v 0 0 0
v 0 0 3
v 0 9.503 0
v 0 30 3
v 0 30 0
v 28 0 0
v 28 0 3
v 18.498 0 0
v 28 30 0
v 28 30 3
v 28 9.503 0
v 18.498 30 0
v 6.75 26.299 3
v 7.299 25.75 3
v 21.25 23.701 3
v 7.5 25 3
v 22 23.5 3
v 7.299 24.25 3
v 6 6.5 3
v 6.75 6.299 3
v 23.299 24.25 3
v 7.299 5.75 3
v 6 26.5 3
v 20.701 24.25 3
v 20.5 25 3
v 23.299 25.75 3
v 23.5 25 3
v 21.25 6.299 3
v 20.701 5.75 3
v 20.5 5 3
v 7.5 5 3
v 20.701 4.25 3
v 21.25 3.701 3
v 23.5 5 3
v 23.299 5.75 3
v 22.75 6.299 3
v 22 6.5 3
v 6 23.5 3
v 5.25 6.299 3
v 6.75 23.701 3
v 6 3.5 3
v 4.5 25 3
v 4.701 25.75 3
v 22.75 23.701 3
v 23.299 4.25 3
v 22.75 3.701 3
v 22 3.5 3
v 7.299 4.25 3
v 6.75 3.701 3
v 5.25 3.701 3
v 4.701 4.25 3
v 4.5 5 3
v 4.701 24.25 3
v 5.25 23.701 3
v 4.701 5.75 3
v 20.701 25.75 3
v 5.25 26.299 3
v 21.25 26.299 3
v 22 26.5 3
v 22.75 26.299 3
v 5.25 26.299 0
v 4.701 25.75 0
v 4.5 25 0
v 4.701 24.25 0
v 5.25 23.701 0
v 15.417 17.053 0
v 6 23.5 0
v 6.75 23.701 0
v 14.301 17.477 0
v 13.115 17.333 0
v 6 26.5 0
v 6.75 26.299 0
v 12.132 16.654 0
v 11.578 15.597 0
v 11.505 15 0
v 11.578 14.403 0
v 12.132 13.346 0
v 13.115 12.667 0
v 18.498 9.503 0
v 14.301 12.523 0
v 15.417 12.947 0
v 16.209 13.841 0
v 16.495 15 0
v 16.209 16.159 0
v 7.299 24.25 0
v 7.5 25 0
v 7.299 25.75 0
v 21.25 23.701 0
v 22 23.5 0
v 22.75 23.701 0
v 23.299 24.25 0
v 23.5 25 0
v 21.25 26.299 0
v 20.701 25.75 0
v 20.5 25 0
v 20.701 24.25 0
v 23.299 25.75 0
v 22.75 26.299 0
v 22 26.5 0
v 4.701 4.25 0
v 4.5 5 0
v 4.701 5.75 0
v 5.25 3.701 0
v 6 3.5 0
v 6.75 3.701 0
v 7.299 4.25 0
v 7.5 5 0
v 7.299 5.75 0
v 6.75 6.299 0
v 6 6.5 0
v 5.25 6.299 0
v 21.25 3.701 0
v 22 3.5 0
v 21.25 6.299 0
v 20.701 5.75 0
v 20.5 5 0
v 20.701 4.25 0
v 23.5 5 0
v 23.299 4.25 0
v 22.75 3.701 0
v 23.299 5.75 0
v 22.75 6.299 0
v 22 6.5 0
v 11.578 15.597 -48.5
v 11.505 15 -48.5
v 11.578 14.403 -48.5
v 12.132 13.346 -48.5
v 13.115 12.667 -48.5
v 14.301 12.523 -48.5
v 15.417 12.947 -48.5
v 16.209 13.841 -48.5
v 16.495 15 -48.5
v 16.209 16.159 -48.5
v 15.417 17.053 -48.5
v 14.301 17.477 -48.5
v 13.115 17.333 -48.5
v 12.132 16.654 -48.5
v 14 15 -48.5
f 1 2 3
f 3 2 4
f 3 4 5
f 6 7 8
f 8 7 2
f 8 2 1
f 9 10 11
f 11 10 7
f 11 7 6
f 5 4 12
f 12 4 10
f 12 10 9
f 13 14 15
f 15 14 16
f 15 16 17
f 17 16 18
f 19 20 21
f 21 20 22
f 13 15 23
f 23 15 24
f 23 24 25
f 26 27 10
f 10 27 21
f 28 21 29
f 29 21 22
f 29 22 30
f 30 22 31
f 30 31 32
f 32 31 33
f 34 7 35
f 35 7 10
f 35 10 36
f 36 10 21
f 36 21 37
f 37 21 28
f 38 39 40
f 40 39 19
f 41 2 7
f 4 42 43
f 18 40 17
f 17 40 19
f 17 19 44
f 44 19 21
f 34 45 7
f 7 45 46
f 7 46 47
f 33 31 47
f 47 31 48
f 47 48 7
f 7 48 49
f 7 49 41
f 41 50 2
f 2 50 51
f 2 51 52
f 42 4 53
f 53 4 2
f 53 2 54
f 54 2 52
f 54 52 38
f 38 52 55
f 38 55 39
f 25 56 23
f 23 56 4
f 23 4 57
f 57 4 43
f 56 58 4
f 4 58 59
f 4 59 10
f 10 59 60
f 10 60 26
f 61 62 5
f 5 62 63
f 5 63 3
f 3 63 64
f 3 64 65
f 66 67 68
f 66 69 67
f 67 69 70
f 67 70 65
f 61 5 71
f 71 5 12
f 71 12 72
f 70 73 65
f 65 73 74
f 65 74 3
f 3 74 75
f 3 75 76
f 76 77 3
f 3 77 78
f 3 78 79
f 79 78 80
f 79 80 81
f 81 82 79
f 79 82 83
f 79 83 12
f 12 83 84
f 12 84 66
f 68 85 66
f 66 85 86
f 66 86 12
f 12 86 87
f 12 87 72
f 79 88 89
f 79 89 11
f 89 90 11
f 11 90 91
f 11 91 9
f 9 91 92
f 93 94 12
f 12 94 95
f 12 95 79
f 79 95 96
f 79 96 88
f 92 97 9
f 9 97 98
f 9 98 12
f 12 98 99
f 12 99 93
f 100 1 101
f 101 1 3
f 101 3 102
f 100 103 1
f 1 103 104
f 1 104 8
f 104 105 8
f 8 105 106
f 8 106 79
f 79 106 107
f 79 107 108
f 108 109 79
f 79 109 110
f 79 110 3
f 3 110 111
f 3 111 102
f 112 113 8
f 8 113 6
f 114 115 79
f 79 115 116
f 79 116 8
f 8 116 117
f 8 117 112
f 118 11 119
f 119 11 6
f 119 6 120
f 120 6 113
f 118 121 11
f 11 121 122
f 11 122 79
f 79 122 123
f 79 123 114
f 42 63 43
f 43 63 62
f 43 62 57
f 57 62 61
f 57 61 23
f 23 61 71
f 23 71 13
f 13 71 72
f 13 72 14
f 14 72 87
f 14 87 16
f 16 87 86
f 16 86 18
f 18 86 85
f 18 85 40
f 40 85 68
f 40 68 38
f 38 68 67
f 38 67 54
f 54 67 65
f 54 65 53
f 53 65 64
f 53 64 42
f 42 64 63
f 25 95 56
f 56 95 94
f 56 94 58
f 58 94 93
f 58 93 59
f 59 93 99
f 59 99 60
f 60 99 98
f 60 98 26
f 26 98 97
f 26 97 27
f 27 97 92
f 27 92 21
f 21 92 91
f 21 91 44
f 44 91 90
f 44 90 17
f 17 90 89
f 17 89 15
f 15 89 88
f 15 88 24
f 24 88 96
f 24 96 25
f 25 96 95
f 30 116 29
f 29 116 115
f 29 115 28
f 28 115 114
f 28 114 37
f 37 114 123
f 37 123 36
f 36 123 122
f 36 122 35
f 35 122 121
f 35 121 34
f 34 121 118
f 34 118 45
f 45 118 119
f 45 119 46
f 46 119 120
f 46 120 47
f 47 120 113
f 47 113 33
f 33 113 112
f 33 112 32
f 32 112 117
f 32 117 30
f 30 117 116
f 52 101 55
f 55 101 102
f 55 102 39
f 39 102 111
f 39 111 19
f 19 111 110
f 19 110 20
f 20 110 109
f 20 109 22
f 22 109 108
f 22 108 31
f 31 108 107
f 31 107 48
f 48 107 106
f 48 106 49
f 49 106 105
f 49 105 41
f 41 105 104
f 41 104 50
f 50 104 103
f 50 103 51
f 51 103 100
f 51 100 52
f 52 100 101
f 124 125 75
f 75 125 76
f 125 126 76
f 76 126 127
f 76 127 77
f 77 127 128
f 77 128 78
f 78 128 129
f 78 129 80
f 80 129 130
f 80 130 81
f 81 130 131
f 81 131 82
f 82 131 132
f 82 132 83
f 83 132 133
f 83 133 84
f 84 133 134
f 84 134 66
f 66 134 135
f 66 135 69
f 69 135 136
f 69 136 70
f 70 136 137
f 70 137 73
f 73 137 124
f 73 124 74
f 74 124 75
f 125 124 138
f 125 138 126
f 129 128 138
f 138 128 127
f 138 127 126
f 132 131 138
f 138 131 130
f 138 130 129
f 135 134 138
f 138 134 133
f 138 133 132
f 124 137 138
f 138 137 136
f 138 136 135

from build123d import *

# Parameters (mm, degrees)
SKETCH_1_W                      = 28
SKETCH_1_H                      = 30
EXTRUDE_1_DEPTH                 = 3
CUT_EXTRUDE_1_REACH             = 43.146
SKETCH_2_R                      = 1.5
CUT_EXTRUDE_1_DIRECTION_2_DEPTH = 42.146081223
SKETCH_3_R                      = 2.495
EXTRUDE_2_DEPTH                 = 48.5


with BuildPart() as part:
    # 草图1 → 凸台-拉伸1 (new body)
    with BuildSketch(Plane.XY):
        with Locations((14, 15)):
            Rectangle(SKETCH_1_W, SKETCH_1_H)
    extrude(amount=EXTRUDE_1_DEPTH)

    # 草图2 → 切除-拉伸1 (cut, up to next)
    with BuildSketch(Plane.XY.offset(3), mode=Mode.PRIVATE) as cut_extrude_1_sk1:
        with Locations(Location((6, 25, 0), (0, 0, 180))):
            Circle(SKETCH_2_R)
    cut_extrude_1_tool1 = extrude(cut_extrude_1_sk1.sketch, amount=-CUT_EXTRUDE_1_REACH, mode=Mode.PRIVATE) & part.part
    # 草图2 → 切除-拉伸1 (cut, up to next)
    with BuildSketch(Plane.XY.offset(3), mode=Mode.PRIVATE) as cut_extrude_1_sk2:
        with Locations(Location((22, 25, 0), (0, 0, 180))):
            Circle(SKETCH_2_R)
    cut_extrude_1_tool2 = extrude(cut_extrude_1_sk2.sketch, amount=-CUT_EXTRUDE_1_REACH, mode=Mode.PRIVATE) & part.part
    # 草图2 → 切除-拉伸1 (cut, up to next)
    with BuildSketch(Plane.XY.offset(3), mode=Mode.PRIVATE) as cut_extrude_1_sk3:
        with Locations(Location((22, 5, 0), (0, 0, 180))):
            Circle(SKETCH_2_R)
    cut_extrude_1_tool3 = extrude(cut_extrude_1_sk3.sketch, amount=-CUT_EXTRUDE_1_REACH, mode=Mode.PRIVATE) & part.part
    # 草图2 → 切除-拉伸1 (cut, up to next)
    with BuildSketch(Plane.XY.offset(3), mode=Mode.PRIVATE) as cut_extrude_1_sk4:
        with Locations(Location((6, 5, 0), (0, 0, 180))):
            Circle(SKETCH_2_R)
    cut_extrude_1_tool4 = extrude(cut_extrude_1_sk4.sketch, amount=-CUT_EXTRUDE_1_REACH, mode=Mode.PRIVATE) & part.part
    add(cut_extrude_1_tool1.solids().sort_by_distance((6, 25, 3))[0], mode=Mode.SUBTRACT)
    add(cut_extrude_1_tool2.solids().sort_by_distance((22, 25, 3))[0], mode=Mode.SUBTRACT)
    add(cut_extrude_1_tool3.solids().sort_by_distance((22, 5, 3))[0], mode=Mode.SUBTRACT)
    add(cut_extrude_1_tool4.solids().sort_by_distance((6, 5, 3))[0], mode=Mode.SUBTRACT)

    # 草图2 → 切除-拉伸1 direction 2 (cut)
    with BuildSketch(Plane.XY.offset(3)):
        with Locations(Location((6, 25, 0), (0, 0, 180))):
            Circle(SKETCH_2_R)
        with Locations(Location((22, 25, 0), (0, 0, 180))):
            Circle(SKETCH_2_R)
        with Locations(Location((22, 5, 0), (0, 0, 180))):
            Circle(SKETCH_2_R)
        with Locations(Location((6, 5, 0), (0, 0, 180))):
            Circle(SKETCH_2_R)
    extrude(amount=CUT_EXTRUDE_1_DIRECTION_2_DEPTH, mode=Mode.SUBTRACT)

    # 草图3 → 凸台-拉伸2 (add)
    with BuildSketch(Plane(origin=(0, 0, 0), x_dir=(-1, 0, 0), z_dir=(0, 0, -1))):
        with Locations(Location((-14, 15, 0), (0, 0, 180))):
            Circle(SKETCH_3_R)
    extrude(amount=EXTRUDE_2_DEPTH)


solid = part.part
